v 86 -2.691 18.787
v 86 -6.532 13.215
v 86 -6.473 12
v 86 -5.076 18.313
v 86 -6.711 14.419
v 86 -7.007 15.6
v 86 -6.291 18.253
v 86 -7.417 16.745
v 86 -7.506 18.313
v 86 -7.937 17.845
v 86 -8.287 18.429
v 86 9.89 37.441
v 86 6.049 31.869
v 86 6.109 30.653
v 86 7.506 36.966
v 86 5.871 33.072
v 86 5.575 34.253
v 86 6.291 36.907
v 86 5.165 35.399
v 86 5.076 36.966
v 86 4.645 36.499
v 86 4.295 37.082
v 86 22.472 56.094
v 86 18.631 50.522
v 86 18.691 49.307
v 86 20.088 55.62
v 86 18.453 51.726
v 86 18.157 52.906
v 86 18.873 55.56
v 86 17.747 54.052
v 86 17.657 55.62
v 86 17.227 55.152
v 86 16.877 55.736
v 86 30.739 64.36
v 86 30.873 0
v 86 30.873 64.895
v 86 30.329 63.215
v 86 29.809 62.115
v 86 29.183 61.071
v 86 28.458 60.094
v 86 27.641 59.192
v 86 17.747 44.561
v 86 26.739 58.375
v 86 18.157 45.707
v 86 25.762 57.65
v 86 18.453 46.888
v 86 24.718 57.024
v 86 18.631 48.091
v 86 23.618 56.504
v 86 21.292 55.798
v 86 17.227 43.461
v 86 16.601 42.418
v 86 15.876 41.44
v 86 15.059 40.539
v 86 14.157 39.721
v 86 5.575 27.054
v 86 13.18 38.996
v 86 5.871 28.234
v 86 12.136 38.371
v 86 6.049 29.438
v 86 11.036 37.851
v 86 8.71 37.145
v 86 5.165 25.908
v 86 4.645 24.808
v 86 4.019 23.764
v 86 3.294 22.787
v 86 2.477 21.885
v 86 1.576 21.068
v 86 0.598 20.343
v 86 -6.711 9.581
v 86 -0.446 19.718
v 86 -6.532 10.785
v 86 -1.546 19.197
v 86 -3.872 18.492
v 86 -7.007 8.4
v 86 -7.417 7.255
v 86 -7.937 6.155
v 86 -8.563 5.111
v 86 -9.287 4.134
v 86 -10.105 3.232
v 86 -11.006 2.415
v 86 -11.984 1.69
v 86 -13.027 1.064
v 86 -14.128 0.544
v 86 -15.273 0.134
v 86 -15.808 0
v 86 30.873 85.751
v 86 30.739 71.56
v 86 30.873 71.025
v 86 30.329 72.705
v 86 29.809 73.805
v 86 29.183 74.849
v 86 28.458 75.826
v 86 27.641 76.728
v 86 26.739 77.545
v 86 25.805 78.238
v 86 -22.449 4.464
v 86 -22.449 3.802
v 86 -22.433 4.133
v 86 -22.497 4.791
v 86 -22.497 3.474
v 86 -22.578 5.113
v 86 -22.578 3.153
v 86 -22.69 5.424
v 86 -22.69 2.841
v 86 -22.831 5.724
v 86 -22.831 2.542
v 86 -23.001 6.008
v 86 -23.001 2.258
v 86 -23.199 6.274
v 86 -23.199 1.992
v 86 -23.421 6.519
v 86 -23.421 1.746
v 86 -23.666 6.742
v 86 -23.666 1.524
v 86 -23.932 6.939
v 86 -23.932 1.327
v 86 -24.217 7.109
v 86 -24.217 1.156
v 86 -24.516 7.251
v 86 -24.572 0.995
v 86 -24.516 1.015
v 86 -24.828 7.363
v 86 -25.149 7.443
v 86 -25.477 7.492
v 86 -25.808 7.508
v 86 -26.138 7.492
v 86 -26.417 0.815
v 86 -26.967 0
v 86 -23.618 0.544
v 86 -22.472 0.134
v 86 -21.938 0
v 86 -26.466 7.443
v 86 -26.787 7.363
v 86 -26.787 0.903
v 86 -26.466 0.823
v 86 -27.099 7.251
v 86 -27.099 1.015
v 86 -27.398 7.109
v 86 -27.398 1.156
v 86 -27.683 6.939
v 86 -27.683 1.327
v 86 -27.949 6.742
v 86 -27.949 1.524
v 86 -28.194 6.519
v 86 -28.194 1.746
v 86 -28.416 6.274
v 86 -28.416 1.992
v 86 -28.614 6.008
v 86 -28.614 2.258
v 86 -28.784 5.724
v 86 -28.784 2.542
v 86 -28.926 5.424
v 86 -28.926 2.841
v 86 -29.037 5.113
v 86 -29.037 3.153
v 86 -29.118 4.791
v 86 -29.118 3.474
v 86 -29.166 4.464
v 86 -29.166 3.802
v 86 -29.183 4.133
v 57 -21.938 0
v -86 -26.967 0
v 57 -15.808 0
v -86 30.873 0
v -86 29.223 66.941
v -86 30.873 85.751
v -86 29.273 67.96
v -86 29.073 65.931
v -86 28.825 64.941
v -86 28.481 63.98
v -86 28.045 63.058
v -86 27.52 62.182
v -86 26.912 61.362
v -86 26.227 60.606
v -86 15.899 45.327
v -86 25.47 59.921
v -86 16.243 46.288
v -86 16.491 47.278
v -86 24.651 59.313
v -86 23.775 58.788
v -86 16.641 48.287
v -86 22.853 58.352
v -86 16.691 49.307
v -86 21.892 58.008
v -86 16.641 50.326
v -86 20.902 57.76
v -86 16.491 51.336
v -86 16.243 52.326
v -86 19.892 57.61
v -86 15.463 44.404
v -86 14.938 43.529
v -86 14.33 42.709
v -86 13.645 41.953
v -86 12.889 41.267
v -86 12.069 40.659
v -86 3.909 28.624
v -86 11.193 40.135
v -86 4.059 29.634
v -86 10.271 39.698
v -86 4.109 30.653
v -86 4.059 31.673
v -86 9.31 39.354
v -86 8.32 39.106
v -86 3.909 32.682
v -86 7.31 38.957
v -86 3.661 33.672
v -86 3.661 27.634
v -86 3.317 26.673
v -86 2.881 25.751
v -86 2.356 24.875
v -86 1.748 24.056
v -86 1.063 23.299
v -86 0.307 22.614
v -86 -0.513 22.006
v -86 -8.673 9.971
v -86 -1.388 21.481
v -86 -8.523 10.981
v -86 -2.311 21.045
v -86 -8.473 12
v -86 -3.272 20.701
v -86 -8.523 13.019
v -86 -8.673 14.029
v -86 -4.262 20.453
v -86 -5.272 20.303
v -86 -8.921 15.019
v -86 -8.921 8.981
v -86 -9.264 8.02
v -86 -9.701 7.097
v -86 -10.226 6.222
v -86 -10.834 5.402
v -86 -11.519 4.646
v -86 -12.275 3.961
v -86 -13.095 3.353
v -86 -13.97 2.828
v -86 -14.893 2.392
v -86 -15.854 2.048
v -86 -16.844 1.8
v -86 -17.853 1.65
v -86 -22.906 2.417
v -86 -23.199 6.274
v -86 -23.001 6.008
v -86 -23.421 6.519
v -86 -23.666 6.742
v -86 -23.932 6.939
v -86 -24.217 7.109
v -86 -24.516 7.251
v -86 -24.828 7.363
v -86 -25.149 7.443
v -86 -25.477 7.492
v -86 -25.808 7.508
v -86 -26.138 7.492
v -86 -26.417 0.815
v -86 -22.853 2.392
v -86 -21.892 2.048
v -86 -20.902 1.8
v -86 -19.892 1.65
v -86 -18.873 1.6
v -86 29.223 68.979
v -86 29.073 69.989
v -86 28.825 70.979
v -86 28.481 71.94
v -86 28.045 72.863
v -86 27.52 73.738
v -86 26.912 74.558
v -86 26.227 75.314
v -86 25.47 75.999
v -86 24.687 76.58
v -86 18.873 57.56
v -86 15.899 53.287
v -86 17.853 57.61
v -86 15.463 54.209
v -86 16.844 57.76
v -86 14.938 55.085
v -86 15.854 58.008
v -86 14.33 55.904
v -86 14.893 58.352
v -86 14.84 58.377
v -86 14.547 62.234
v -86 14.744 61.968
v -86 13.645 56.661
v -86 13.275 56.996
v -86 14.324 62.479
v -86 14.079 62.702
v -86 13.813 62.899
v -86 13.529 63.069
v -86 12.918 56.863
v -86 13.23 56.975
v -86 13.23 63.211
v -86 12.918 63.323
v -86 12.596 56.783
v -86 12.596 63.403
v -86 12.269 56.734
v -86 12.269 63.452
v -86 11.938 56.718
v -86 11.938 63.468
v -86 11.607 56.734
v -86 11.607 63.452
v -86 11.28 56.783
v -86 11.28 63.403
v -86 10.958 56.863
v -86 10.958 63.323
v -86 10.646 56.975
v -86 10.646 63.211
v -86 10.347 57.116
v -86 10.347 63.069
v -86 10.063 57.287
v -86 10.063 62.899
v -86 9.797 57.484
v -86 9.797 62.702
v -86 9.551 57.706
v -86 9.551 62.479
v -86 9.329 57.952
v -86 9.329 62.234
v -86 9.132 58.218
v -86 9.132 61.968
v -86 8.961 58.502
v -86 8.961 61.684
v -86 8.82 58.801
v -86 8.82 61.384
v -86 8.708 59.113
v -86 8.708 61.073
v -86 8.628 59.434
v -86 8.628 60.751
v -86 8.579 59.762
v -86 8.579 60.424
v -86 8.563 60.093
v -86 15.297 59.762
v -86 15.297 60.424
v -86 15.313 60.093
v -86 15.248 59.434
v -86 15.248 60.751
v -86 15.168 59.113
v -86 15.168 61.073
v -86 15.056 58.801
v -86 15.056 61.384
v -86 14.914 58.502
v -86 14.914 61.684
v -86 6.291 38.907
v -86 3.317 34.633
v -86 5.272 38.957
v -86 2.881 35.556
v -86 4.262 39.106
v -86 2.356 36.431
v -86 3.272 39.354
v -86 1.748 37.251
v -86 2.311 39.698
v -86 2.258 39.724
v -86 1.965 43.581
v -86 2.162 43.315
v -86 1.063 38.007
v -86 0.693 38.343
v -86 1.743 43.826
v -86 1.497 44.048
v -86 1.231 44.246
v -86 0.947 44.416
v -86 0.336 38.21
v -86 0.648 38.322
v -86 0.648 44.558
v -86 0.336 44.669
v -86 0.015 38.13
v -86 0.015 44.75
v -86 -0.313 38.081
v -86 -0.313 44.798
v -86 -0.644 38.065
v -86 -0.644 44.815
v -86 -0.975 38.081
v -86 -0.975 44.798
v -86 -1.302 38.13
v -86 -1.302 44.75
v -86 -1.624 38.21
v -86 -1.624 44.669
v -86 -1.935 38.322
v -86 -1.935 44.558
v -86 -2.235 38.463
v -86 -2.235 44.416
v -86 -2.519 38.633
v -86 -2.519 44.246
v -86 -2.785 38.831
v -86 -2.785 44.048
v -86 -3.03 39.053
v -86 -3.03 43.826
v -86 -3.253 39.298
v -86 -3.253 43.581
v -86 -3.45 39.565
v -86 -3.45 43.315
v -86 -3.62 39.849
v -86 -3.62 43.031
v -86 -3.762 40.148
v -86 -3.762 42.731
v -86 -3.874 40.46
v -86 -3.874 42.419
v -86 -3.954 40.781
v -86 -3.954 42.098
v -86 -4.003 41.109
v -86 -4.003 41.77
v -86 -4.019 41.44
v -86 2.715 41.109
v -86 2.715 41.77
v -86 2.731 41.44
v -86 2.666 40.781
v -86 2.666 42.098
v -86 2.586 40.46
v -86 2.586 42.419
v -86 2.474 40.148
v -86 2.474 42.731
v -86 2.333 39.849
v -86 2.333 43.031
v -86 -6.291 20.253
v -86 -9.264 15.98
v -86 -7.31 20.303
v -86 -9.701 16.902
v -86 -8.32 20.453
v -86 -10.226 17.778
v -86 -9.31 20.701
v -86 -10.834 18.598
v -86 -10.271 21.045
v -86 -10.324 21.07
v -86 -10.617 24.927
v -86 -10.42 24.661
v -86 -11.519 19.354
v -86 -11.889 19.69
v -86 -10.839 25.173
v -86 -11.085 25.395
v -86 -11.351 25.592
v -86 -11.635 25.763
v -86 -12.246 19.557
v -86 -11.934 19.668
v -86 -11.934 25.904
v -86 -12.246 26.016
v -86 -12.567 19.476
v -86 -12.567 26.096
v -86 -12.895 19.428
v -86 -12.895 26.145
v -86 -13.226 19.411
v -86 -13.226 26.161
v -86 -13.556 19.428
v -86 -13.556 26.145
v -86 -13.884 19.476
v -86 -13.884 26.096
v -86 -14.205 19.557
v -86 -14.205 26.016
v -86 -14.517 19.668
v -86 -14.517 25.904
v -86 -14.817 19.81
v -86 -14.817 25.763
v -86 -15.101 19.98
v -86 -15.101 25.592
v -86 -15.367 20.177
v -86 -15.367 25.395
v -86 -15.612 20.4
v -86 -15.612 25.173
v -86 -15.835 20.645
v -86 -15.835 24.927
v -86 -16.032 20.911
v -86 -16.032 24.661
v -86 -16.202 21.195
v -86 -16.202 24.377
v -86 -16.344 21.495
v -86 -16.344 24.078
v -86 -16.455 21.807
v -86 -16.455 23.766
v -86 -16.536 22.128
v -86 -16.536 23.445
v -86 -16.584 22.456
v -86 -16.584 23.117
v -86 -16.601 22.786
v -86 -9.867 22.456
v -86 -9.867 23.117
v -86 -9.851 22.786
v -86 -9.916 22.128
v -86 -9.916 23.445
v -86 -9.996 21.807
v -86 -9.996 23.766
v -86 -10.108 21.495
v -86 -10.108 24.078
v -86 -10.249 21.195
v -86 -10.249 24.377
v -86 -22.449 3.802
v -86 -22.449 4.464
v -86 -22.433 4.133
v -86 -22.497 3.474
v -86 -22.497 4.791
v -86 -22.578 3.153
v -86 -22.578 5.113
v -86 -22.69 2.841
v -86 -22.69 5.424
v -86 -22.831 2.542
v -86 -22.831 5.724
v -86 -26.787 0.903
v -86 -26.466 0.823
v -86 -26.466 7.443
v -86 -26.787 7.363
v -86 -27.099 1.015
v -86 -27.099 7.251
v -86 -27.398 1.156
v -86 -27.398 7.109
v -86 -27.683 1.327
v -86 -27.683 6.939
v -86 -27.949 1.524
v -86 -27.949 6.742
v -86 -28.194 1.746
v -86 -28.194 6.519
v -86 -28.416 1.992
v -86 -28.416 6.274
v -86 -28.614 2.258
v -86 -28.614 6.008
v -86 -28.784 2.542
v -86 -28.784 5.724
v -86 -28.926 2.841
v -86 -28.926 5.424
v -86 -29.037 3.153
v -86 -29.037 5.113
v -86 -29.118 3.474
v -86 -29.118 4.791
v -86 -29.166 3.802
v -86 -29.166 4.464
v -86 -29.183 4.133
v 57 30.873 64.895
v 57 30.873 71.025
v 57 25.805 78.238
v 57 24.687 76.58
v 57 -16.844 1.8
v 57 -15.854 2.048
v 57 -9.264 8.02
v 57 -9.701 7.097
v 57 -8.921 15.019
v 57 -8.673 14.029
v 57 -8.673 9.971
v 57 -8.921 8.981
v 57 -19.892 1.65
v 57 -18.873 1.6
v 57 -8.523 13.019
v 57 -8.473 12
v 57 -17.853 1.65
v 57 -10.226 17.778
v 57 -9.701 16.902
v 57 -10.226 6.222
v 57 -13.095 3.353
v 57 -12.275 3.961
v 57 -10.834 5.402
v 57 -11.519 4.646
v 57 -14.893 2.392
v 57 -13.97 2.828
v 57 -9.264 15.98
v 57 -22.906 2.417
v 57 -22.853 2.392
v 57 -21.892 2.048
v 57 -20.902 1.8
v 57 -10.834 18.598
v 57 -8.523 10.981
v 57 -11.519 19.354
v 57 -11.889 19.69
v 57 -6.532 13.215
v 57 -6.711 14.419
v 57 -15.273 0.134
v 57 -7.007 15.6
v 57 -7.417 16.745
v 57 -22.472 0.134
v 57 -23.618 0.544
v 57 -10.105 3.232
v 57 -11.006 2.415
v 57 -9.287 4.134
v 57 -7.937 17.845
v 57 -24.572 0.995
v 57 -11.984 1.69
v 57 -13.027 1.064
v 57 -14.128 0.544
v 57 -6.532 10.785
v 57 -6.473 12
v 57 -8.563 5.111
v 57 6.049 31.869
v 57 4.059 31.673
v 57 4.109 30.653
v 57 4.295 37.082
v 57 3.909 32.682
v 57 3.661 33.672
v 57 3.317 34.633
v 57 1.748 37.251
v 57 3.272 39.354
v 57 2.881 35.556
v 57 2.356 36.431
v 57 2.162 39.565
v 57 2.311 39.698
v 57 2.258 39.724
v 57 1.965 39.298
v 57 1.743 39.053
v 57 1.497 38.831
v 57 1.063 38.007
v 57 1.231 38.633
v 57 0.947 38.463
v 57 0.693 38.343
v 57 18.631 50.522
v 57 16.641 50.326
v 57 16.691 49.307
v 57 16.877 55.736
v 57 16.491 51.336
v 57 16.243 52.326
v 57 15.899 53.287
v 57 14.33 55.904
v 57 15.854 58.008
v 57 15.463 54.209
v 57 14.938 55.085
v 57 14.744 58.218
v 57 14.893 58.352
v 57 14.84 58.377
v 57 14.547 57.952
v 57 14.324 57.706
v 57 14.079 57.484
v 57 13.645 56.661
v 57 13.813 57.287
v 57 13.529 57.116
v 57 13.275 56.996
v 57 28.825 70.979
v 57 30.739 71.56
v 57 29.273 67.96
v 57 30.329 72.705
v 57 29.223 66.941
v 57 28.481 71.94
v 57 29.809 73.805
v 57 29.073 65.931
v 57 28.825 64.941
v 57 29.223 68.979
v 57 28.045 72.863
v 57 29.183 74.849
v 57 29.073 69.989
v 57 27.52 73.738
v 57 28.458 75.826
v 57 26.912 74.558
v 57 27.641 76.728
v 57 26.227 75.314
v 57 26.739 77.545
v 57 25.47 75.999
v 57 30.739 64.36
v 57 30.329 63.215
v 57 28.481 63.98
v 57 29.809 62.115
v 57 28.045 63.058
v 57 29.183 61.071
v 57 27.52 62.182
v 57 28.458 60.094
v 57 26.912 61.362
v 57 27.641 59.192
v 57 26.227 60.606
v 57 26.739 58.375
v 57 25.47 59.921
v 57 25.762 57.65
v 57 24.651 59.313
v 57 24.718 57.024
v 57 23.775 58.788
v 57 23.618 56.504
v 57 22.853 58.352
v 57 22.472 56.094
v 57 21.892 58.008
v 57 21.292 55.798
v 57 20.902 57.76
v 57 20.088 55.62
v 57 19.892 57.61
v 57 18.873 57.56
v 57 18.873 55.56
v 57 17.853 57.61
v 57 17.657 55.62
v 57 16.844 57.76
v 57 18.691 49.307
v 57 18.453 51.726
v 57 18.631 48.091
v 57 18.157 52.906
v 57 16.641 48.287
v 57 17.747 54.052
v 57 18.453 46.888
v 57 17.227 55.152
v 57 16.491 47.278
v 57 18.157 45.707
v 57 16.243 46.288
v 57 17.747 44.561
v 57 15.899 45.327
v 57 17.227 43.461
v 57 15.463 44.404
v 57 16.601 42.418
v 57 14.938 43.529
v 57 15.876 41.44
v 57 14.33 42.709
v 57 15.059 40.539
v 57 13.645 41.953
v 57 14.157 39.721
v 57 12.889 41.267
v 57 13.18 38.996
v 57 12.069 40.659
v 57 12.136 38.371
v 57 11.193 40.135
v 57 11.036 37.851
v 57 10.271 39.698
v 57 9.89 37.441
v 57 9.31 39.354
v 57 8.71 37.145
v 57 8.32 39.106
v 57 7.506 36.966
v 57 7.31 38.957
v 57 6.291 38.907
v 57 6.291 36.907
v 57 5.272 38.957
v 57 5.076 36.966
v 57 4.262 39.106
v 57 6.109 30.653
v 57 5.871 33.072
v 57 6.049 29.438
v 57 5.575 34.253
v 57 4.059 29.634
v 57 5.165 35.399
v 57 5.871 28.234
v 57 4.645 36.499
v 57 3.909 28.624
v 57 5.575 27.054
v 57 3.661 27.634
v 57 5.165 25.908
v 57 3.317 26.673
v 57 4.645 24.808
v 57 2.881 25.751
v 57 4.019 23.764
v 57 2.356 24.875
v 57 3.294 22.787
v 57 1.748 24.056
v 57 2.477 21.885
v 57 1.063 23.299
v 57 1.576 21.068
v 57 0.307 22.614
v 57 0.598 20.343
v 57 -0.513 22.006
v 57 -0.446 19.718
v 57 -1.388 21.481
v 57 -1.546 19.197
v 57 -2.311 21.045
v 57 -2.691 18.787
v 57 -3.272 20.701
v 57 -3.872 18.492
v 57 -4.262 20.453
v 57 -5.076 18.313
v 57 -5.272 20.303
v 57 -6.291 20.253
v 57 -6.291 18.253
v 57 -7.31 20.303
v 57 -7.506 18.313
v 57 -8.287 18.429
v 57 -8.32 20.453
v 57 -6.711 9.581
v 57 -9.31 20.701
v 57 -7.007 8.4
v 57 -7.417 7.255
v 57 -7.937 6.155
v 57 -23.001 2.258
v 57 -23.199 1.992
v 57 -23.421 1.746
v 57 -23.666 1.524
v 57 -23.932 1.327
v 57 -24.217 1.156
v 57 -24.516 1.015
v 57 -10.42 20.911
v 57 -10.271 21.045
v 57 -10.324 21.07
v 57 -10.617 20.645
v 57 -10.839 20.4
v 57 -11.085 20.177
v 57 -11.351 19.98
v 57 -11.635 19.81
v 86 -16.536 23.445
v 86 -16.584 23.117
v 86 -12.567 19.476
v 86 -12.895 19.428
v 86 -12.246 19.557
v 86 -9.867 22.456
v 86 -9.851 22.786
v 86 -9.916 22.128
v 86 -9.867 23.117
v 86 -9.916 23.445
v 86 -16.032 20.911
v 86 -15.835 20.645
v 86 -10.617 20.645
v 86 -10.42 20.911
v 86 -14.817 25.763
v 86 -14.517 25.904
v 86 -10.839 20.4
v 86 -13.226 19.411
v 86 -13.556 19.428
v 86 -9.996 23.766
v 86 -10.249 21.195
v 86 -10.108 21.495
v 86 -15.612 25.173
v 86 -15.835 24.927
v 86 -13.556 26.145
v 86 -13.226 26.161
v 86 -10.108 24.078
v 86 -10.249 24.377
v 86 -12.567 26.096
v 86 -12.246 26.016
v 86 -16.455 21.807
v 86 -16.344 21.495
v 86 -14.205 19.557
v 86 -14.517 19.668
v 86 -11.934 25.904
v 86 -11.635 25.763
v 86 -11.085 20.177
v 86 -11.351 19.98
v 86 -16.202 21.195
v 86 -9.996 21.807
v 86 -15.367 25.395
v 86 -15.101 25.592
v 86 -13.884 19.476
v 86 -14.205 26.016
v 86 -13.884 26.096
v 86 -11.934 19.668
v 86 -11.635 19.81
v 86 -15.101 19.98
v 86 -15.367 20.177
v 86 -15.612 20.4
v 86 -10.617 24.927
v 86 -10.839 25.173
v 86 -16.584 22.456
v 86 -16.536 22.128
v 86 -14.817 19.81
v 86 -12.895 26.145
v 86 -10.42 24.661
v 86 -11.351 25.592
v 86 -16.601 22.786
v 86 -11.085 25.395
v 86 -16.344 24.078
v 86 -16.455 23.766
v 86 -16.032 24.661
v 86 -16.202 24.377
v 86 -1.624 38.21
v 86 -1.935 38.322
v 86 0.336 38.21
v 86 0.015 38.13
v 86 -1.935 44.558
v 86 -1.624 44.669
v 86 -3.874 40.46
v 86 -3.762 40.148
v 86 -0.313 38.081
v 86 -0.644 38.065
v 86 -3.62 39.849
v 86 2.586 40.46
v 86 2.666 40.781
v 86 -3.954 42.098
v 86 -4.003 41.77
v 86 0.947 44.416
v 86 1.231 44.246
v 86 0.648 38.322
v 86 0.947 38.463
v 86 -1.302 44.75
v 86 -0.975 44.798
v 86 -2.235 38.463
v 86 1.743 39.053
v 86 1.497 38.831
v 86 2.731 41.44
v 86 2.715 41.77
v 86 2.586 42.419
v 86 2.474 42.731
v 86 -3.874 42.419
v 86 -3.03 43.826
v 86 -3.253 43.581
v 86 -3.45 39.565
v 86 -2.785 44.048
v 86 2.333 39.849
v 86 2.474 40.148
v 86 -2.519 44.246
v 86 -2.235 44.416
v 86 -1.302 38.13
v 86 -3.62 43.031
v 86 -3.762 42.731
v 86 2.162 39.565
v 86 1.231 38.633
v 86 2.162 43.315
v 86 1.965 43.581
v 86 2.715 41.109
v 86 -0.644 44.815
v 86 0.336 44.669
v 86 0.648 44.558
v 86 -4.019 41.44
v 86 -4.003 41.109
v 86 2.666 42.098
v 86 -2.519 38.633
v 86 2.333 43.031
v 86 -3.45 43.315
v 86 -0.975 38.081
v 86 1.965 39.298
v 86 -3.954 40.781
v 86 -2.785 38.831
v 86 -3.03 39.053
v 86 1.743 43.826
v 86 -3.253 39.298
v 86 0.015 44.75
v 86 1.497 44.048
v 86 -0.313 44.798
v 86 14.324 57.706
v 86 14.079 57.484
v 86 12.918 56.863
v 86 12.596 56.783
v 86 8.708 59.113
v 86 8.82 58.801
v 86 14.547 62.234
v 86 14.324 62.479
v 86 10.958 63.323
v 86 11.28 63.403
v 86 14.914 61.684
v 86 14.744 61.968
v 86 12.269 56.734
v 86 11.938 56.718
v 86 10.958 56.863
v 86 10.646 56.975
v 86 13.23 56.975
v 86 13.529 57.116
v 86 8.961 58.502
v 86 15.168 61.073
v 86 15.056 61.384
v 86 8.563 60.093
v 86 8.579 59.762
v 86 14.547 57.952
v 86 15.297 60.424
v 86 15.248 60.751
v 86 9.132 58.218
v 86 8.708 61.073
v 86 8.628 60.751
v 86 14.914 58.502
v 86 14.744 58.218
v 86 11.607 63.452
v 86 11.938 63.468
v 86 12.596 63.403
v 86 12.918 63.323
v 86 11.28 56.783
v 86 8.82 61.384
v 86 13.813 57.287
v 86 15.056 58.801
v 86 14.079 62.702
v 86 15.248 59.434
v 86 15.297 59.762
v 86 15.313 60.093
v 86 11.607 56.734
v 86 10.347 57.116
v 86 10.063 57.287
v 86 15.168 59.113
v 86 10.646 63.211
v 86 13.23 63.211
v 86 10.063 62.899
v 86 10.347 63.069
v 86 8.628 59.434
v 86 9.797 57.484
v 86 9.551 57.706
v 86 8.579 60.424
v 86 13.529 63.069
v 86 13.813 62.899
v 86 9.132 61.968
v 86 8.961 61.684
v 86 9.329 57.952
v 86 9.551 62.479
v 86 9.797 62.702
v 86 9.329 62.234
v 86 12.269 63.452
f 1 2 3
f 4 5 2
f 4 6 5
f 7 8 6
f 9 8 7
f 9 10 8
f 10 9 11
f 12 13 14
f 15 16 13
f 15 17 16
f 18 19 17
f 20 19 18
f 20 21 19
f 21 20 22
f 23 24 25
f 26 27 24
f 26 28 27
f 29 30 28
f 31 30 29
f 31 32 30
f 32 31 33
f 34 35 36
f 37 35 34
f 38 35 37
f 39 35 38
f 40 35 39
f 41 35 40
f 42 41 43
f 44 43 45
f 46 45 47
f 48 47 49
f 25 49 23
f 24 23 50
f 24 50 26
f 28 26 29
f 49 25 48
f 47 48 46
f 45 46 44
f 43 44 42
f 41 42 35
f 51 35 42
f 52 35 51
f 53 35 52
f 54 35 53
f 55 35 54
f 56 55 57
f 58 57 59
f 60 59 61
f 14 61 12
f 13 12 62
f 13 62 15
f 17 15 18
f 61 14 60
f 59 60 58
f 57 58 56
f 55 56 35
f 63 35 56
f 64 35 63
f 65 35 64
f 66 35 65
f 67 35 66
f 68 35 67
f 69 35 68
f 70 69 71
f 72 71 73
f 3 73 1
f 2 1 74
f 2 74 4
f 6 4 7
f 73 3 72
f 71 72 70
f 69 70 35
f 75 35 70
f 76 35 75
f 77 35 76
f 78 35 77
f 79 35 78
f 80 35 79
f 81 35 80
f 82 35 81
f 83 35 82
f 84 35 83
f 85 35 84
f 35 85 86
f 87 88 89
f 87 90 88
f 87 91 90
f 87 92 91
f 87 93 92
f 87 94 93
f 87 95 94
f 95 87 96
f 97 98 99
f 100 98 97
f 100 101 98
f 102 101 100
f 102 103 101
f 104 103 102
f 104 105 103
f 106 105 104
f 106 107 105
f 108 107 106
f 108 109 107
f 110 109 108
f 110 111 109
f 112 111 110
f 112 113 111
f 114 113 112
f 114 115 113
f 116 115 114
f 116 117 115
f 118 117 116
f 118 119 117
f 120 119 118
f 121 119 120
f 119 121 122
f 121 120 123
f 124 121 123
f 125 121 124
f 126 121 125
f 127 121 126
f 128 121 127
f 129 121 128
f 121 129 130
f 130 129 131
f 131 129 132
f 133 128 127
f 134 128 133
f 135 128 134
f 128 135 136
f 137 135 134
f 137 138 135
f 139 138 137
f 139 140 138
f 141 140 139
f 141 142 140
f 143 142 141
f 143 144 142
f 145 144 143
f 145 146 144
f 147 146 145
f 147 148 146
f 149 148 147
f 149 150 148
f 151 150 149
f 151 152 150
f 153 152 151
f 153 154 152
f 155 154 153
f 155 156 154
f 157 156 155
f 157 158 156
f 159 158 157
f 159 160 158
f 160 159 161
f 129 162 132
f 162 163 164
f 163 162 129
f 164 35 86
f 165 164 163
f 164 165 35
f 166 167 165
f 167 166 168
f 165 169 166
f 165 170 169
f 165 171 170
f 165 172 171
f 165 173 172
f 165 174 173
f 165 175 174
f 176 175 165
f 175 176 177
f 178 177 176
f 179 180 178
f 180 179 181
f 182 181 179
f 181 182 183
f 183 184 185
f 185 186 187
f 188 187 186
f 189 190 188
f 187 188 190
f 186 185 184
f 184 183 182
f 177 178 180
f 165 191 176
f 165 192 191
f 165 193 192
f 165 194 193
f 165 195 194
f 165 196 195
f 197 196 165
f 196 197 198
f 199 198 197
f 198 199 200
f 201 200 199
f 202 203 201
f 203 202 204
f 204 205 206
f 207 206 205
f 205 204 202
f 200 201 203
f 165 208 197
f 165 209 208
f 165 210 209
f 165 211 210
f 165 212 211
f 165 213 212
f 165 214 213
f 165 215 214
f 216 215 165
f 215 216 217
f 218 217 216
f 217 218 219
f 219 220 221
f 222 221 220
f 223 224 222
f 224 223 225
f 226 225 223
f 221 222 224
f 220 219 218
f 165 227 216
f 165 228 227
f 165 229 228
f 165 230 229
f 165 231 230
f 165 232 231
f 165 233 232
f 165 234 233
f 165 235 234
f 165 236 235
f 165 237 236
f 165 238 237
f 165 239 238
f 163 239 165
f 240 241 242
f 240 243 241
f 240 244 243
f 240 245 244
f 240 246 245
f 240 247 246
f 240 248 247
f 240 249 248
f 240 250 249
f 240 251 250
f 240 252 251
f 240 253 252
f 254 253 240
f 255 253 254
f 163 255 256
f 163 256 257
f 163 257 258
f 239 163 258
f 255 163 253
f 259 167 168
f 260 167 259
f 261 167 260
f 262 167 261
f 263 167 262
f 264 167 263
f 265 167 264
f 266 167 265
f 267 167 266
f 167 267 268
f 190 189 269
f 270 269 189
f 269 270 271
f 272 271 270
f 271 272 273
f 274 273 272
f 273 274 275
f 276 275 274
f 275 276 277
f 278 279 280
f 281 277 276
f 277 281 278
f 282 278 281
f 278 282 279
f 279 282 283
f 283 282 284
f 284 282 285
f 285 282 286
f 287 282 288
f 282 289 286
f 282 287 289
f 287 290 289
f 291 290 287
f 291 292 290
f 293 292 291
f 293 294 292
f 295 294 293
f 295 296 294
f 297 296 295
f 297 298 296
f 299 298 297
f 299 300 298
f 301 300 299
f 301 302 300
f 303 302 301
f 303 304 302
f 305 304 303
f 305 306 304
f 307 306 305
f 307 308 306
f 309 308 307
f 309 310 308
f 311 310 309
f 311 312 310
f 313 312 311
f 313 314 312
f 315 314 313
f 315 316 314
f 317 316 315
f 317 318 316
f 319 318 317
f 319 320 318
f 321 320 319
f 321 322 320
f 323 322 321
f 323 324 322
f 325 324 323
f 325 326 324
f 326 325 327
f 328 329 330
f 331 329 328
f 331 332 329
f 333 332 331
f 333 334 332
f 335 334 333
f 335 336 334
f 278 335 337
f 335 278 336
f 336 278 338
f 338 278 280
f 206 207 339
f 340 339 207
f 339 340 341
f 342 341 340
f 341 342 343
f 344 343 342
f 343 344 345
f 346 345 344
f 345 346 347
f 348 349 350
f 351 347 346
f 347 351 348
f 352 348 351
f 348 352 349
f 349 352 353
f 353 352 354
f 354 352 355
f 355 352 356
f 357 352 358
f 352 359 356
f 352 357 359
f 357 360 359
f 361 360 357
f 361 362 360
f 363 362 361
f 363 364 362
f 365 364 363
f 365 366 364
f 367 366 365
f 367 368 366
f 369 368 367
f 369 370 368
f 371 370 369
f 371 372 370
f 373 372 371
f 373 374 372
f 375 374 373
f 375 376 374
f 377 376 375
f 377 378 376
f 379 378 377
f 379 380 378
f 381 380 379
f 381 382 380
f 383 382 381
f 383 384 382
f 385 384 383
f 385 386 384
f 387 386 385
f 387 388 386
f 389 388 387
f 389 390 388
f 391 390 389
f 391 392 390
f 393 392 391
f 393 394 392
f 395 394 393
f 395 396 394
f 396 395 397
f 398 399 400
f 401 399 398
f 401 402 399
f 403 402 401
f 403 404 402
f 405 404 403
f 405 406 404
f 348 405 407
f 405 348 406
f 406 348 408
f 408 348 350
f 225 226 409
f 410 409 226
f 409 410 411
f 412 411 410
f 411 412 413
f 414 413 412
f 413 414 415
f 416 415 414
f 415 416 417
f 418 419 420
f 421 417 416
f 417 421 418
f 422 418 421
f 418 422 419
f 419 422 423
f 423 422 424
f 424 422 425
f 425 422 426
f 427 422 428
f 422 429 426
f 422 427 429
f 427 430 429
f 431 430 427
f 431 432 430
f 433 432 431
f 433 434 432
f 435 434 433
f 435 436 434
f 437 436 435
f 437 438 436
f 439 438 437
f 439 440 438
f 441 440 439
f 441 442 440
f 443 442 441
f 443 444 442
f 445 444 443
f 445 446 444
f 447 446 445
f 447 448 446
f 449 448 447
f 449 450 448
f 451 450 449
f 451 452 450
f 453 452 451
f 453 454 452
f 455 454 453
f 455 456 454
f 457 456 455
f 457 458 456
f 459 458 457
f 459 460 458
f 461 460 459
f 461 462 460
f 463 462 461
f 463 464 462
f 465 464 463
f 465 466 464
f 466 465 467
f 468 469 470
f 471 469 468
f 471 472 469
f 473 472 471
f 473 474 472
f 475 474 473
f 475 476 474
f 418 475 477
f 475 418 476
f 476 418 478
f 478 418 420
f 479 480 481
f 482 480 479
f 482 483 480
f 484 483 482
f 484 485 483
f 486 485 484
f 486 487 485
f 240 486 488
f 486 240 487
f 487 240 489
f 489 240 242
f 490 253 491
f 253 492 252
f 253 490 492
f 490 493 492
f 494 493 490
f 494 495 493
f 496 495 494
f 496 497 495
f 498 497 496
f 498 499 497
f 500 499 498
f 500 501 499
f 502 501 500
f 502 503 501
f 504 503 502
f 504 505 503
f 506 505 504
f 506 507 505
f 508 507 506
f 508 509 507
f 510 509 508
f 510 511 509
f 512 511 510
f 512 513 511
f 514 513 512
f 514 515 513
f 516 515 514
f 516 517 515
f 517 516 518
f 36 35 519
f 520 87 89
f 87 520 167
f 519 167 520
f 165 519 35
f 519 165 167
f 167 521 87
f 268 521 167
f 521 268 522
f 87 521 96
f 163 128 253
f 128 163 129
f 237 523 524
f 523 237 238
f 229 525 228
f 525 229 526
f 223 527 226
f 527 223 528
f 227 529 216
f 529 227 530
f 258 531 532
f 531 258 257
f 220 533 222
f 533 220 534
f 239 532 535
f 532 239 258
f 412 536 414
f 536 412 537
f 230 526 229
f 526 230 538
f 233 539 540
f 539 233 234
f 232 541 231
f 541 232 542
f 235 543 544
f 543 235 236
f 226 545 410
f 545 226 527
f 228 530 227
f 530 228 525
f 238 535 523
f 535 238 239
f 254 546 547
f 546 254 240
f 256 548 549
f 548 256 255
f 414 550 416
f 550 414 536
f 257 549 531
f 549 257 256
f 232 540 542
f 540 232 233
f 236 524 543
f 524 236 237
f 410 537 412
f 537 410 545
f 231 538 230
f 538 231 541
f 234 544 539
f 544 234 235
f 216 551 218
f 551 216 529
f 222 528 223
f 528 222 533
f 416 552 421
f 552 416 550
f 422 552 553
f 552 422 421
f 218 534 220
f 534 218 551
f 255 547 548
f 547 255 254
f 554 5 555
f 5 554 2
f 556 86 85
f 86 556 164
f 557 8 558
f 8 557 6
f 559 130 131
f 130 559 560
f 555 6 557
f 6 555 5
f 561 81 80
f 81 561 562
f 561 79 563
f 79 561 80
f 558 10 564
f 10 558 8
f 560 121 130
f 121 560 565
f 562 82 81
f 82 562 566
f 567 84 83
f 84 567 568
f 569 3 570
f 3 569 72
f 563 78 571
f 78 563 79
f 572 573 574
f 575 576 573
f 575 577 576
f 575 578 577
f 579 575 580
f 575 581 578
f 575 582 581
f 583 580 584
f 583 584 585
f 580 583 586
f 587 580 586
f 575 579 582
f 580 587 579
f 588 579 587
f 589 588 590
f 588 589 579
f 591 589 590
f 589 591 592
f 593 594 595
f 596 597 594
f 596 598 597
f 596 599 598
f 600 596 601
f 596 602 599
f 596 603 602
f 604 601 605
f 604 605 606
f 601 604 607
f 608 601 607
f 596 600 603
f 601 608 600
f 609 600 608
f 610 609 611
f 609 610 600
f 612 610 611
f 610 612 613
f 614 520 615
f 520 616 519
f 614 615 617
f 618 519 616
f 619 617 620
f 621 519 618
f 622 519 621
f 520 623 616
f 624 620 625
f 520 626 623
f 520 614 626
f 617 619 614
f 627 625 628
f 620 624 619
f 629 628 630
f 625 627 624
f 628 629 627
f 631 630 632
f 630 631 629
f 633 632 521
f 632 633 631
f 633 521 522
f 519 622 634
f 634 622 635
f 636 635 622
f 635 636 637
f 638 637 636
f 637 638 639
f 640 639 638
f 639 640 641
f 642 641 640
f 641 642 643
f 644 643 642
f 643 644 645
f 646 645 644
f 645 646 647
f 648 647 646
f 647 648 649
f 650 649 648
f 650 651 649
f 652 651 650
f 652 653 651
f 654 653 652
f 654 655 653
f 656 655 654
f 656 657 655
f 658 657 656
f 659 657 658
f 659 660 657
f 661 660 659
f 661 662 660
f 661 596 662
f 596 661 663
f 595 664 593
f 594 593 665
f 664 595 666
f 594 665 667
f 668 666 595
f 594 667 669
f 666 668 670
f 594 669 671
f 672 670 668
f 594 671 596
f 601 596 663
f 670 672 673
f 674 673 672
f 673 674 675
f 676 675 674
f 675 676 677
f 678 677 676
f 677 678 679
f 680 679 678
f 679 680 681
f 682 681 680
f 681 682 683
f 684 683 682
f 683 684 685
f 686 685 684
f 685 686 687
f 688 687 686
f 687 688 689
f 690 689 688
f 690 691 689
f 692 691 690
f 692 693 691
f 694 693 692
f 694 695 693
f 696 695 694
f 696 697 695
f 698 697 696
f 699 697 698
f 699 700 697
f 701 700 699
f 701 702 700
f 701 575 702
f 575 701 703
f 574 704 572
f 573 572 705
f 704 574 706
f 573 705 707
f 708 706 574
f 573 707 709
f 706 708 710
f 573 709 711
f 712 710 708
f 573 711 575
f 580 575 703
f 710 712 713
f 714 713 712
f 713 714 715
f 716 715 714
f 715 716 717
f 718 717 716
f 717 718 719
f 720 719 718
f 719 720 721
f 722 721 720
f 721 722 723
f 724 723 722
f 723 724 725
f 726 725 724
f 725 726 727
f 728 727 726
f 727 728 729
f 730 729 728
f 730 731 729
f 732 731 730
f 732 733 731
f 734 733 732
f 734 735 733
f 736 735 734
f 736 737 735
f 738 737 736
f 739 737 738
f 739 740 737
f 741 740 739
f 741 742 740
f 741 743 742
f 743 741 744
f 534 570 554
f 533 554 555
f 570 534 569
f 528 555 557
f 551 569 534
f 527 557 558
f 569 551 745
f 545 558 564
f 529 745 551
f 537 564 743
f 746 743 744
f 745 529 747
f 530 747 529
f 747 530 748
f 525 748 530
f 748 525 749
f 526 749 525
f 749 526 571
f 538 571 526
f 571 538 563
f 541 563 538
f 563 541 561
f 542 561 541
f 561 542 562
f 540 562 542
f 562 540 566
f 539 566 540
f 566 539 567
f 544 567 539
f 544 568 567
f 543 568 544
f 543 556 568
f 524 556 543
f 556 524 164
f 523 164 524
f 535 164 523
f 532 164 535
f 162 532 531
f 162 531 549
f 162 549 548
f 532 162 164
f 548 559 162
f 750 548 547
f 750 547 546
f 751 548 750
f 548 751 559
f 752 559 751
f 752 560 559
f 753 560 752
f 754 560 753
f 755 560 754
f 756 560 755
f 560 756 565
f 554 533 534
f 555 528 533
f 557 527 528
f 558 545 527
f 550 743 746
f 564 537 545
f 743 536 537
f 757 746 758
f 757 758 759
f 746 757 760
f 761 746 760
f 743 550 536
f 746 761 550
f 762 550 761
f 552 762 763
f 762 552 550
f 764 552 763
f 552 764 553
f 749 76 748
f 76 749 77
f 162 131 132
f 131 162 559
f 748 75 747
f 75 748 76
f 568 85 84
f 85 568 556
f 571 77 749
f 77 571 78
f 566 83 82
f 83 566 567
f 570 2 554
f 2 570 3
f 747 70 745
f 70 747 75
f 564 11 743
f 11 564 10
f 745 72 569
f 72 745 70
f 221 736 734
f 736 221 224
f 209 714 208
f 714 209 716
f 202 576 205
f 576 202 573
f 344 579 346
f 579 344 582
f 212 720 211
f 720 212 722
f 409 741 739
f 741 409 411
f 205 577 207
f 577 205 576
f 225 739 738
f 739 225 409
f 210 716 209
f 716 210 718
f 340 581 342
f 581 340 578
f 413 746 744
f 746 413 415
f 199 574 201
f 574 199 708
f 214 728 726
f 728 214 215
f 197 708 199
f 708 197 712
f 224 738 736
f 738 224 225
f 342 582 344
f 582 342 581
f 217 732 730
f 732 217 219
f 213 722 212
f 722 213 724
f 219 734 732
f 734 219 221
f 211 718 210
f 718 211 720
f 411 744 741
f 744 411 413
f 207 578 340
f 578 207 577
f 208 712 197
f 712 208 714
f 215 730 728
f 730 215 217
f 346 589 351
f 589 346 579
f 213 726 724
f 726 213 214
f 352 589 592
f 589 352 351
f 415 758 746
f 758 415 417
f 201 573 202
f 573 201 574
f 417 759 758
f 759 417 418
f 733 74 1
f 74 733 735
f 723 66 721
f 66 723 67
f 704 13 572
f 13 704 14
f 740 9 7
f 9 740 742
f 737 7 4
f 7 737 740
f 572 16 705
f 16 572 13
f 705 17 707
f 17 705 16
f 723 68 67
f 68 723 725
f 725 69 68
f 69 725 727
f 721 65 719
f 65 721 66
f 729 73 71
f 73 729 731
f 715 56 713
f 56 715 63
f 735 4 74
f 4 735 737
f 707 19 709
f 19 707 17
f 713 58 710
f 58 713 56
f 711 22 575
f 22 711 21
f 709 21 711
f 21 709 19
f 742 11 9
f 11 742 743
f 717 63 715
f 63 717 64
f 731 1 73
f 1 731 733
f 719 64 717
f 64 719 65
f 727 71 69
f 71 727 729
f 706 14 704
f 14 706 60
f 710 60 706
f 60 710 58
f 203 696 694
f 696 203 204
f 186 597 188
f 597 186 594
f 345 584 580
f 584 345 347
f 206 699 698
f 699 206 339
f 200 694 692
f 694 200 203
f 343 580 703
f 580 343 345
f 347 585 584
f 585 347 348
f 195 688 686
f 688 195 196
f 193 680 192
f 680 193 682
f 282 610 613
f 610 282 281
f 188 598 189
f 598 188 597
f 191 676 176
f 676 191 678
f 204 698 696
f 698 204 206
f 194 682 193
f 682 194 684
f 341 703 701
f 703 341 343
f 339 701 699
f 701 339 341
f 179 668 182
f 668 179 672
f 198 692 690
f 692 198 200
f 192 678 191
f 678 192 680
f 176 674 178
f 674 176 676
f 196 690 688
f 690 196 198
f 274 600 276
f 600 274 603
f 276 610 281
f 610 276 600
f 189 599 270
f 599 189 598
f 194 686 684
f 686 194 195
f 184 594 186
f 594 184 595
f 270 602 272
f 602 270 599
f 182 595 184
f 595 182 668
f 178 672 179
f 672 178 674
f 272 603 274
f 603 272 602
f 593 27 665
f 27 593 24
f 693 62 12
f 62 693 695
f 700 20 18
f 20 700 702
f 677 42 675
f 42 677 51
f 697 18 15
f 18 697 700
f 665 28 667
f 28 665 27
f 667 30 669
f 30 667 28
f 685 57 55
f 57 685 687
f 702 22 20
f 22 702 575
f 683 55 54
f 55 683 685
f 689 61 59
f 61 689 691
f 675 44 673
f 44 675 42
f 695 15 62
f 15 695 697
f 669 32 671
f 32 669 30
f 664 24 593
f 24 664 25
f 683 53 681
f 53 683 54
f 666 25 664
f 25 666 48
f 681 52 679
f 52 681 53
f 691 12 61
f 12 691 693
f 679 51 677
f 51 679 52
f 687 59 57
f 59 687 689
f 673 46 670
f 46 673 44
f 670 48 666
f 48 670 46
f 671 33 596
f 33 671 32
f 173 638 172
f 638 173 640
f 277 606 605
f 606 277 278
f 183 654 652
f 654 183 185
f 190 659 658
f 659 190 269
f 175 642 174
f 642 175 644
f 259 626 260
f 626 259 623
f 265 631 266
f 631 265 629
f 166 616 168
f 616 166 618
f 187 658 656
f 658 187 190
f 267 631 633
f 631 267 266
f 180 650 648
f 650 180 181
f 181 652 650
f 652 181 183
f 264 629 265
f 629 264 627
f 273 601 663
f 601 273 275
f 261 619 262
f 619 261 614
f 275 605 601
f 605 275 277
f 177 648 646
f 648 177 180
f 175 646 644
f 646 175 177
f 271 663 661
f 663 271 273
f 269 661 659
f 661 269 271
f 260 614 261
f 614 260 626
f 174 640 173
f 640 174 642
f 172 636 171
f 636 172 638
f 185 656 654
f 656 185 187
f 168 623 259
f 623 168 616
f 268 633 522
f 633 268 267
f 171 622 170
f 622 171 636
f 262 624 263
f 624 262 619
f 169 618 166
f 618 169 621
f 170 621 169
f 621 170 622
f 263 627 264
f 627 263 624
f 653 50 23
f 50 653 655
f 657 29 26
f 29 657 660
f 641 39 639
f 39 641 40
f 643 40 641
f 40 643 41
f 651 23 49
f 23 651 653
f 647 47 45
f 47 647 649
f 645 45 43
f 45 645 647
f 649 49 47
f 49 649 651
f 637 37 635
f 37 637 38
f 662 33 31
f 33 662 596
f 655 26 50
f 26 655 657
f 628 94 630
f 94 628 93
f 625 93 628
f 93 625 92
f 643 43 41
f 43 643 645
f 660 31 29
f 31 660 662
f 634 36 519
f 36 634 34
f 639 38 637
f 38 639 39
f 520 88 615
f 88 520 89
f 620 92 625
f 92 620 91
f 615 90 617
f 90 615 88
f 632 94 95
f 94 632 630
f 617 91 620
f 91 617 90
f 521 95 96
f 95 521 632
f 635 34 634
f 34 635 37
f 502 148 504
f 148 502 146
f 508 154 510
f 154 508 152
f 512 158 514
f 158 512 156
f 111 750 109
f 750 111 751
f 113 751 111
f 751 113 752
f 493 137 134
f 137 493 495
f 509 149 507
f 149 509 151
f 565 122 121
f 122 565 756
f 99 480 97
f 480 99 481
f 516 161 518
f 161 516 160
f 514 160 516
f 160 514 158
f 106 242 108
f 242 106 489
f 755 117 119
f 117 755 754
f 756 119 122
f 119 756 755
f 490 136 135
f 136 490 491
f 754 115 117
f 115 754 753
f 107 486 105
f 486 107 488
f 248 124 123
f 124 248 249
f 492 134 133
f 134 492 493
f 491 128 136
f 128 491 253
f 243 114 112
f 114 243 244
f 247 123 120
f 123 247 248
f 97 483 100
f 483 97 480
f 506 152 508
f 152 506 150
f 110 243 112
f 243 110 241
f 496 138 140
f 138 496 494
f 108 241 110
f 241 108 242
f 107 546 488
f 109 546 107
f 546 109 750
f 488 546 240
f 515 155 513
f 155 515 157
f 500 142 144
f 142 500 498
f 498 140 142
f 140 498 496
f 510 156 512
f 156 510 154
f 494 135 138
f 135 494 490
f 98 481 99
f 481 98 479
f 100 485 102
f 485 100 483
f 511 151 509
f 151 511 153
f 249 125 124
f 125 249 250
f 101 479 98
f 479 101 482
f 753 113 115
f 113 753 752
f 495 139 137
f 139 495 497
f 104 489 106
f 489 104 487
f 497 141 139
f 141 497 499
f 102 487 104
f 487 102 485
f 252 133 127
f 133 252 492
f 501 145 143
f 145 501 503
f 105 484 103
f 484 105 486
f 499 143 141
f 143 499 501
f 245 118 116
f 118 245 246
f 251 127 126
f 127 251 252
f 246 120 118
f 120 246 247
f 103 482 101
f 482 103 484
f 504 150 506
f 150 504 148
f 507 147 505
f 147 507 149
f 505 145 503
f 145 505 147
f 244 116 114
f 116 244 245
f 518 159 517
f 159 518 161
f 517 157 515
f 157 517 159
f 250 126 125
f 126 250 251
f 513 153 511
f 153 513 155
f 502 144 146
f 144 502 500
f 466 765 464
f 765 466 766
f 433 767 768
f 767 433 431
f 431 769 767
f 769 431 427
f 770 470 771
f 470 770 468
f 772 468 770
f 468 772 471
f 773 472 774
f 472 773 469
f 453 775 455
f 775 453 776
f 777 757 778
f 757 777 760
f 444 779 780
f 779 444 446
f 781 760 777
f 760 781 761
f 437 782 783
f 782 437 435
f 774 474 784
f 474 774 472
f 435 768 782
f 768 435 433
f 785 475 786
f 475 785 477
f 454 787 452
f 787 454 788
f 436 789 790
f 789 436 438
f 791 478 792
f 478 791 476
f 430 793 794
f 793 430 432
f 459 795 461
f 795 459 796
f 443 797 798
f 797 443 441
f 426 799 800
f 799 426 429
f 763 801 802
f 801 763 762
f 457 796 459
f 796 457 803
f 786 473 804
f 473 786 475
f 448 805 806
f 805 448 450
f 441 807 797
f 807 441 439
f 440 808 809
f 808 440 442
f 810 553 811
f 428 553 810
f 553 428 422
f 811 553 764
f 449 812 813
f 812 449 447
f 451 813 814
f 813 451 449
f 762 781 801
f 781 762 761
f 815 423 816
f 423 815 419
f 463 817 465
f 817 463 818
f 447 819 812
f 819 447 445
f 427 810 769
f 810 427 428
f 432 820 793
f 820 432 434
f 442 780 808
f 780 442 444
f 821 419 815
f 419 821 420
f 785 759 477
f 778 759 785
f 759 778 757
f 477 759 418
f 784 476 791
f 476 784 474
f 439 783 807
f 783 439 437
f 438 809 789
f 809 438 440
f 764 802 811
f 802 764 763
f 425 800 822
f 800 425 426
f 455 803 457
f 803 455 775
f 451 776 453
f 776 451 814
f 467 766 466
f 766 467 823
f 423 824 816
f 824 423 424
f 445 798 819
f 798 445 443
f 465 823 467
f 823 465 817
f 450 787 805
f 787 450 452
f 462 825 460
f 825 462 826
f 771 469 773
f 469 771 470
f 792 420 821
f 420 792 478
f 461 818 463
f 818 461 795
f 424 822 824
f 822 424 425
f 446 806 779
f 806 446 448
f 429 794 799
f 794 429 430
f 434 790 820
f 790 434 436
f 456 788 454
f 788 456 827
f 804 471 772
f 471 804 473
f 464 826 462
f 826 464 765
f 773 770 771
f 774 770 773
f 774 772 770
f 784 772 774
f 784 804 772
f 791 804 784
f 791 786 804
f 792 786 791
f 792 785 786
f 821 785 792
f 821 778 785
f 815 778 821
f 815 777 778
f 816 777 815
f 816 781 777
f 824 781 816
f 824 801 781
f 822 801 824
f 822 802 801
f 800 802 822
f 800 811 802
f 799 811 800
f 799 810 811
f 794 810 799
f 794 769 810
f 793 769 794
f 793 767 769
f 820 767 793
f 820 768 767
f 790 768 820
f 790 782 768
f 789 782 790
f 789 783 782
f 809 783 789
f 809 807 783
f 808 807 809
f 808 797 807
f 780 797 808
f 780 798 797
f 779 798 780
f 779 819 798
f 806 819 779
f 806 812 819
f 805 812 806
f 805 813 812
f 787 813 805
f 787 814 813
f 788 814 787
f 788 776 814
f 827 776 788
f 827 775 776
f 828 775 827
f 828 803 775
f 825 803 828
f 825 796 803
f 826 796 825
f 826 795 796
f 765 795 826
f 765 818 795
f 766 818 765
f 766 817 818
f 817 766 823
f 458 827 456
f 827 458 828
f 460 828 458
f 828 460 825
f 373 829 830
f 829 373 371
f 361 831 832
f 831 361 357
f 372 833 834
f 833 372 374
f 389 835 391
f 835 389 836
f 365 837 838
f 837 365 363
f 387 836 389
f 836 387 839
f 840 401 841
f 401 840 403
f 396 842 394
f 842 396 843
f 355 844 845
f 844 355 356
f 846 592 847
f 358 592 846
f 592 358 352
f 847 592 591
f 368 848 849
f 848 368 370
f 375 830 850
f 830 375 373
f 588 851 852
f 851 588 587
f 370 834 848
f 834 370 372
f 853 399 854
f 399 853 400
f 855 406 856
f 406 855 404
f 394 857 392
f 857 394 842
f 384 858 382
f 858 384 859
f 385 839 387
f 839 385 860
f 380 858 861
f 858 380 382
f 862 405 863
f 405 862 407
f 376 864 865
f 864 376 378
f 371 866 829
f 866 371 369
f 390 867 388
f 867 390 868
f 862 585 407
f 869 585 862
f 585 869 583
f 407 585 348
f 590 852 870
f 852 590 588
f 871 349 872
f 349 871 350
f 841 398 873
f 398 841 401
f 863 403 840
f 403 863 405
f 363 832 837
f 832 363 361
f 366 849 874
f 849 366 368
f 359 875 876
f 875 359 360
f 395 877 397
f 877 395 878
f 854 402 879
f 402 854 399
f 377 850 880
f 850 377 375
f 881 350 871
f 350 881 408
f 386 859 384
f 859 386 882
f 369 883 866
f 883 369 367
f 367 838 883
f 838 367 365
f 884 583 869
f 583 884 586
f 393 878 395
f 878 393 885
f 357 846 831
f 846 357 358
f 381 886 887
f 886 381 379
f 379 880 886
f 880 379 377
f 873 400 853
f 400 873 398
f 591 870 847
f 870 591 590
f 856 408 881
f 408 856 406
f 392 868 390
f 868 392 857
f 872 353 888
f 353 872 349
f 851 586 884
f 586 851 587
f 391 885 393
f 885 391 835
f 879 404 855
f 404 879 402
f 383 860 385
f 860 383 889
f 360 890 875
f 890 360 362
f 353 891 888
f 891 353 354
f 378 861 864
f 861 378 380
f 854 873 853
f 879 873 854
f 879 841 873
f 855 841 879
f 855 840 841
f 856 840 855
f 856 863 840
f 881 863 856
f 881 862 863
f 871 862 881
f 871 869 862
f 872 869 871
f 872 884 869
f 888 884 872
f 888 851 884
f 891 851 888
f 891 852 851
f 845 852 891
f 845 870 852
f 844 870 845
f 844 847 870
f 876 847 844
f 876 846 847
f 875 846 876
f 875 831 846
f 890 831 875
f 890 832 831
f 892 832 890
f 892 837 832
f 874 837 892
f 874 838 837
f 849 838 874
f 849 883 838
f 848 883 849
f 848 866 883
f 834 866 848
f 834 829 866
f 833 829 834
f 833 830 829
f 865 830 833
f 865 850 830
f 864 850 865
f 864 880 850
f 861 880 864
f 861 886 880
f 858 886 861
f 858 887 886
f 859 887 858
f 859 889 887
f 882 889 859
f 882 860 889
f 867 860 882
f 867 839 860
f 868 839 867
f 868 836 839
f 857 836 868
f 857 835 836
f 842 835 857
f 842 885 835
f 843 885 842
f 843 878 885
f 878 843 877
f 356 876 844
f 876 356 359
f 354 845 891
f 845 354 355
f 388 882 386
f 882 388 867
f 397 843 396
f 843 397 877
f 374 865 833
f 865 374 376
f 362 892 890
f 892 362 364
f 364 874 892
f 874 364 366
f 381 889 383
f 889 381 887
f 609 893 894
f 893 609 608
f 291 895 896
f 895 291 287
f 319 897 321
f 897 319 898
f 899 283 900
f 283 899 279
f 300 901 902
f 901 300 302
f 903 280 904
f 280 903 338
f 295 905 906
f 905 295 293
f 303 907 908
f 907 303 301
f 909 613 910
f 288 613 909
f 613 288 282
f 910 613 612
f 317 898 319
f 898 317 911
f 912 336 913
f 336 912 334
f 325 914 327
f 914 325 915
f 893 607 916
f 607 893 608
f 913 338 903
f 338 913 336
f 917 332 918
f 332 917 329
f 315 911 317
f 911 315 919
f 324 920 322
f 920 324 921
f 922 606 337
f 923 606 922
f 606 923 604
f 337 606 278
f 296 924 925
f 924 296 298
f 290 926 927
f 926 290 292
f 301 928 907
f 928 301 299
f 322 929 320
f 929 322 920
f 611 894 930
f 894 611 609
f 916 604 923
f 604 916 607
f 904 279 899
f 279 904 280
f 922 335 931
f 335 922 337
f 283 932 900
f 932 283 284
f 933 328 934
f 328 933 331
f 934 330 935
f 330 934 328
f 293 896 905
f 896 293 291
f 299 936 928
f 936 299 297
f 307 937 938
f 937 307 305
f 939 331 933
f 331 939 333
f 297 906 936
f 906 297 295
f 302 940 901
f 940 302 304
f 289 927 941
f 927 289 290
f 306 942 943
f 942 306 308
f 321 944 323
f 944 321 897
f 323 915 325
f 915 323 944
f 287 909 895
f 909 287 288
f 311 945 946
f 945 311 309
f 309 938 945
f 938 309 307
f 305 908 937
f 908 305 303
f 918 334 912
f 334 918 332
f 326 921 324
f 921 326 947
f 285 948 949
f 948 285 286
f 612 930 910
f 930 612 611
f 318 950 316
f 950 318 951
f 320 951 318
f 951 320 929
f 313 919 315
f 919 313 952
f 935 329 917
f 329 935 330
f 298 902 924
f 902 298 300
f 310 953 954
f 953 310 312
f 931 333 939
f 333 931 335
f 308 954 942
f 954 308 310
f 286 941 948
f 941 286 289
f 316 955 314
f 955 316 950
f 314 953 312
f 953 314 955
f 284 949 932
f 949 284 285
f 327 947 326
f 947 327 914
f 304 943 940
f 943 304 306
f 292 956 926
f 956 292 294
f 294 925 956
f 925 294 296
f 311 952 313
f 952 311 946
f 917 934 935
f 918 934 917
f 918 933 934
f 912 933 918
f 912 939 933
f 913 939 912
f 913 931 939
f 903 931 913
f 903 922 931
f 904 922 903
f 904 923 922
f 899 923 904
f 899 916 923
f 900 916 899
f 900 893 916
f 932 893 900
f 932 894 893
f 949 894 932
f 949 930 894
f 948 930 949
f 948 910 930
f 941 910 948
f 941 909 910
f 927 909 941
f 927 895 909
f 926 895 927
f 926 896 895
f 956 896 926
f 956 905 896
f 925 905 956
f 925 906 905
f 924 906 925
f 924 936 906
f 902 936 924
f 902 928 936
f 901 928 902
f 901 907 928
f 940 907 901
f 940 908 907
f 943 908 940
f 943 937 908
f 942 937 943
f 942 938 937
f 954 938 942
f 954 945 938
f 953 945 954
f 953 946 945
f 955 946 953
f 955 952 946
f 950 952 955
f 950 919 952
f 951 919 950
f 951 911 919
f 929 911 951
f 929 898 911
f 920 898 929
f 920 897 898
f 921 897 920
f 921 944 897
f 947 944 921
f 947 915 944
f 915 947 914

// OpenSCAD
// file: common.scad
// ============================================================
// common.scad — shared parameters + modules for all designs
// LOCKED PEN SPECIFICATION (do not change)
// ============================================================
PEN_L = 165;      // pen length (mm)
PEN_A = 17;       // pen cross-section minor
PEN_B = 20;       // pen cross-section major (used as diameter envelope)
CLEAR = 0.4;      // fit clearance
WALL  = 1.6;      // minimum wall thickness

$fn = 64;

RCH = PEN_B/2 + CLEAR;   // = 10.4  channel radius
EPS = 0.01;

// --- open-top U trough cut, axis along X, centered at local origin -----------
// Removes a lower half-cylinder of radius r plus a full-width vertical slot
// upward, so the channel is open at the top (no ceiling -> no overhang).
module trough_cut(len, r=RCH, top=80) {
    union() {
        rotate([0,90,0]) cylinder(h=len, r=r, center=true);
        translate([0,0,top/2]) cube([len, 2*r, top], center=true); // slot upward
    }
}

// --- teardrop hole, axis along X, centered at local origin --------------------
// 45-degree self-supporting apex pointing +Z so a horizontal bore can print
// without support.
module teardrop_cut(len, r=RCH) {
    rotate([0,90,0])
        linear_extrude(height=len, center=true)
            union() {
                circle(r=r);
                polygon([[ 0.7071*r, 0.7071*r],
                         [ 0,         1.4142*r],
                         [-0.7071*r,  0.7071*r]]);
            }
}

// --- dial relief: widened open-top pocket at one channel end -----------------
// place at the +X or -X end of a channel so the dose dial clears / can be turned
module dial_relief(end_x, r=RCH+2.2, len=28, top=80) {
    translate([end_x, 0, 0]) trough_cut(len, r, top);
}
// file: lipcradle_lib.scad
// lipcradle_lib.scad — SINGLE-PART reclined rack with a little front lip per
// cradle (no cover). Pens nestle into half-pipe cradles and lift out the front
// over a small rounded lip. The lip is a proud bump (not an undercut), so you
// lift the pen over it — no snap, no flex, nothing tolerance-critical.
include <common.scad>

LBLK = PEN_L + 7;   // 172

// n     : pens
// phi   : ramp angle (shallower holds better with a small lip; steeper fits more)
// P     : along-ramp spacing
// liph  : how far the front lip stands proud of the ramp (the "little lip")
// rr    : dial-relief radius
module lipcradle(n=3, phi=30, P=22.5, liph=4, rr=RCH+2, rlen=34) {
    cph=cos(phi); sph=sin(phi);
    yc=[for(i=[0:n-1]) (-(n-1)/2+i)*P*cph];
    zc=[for(i=[0:n-1]) (WALL+RCH)+i*P*sph];
    ymn=min(yc)-RCH-WALL; ymx=max(yc)+RCH+WALL;
    Wb=ymx-ymn; ycen=(ymx+ymn)/2; Hb=max(zc)+RCH+8;
    big=800; relief_cx=LBLK/2-12;
    nrY=-sph; nrZ=cph;          // ramp normal (up-front)
    tY=cph;   tZ=sph;           // up-slope tangent

    union() {
        difference() {
            // sheared wedge (ramp passes through the cradle centers)
            difference() {
                translate([0,ycen,Hb/2]) cube([LBLK,Wb,Hb],center=true);
                translate([0,yc[0],zc[0]]) rotate([phi,0,0])
                    translate([0,0,big/2]) cube([LBLK+2,big,big],center=true);
            }
            // half-pipe cradles (open up-front) + dial relief
            for(i=[0:n-1]) {
                translate([0,yc[i],zc[i]]) rotate([0,90,0])
                    cylinder(h=LBLK+2, r=RCH, center=true);
                translate([relief_cx,yc[i],zc[i]]) rotate([0,90,0])
                    cylinder(h=rlen, r=rr, center=true);
            }
        }
        // little rounded front lip along each cradle's down-slope rim (added
        // after the cut so it stands proud and gently narrows the opening)
        for(i=[0:n-1]) {
            rimY = yc[i] - RCH*tY;   rimZ = zc[i] - RCH*tZ;
            translate([0, rimY + 0.3*liph*nrY, rimZ + 0.3*liph*nrZ])
                rotate([0,90,0]) cylinder(h=LBLK, r=liph*0.75, center=true);
        }
    }
}
// main file
// lip-cradle, 4 pens, steeper 56deg (needed for width) — lip only lightly holds.
include <lipcradle_lib.scad>
lipcradle(n=4, phi=56, P=22.5, liph=4.5);
